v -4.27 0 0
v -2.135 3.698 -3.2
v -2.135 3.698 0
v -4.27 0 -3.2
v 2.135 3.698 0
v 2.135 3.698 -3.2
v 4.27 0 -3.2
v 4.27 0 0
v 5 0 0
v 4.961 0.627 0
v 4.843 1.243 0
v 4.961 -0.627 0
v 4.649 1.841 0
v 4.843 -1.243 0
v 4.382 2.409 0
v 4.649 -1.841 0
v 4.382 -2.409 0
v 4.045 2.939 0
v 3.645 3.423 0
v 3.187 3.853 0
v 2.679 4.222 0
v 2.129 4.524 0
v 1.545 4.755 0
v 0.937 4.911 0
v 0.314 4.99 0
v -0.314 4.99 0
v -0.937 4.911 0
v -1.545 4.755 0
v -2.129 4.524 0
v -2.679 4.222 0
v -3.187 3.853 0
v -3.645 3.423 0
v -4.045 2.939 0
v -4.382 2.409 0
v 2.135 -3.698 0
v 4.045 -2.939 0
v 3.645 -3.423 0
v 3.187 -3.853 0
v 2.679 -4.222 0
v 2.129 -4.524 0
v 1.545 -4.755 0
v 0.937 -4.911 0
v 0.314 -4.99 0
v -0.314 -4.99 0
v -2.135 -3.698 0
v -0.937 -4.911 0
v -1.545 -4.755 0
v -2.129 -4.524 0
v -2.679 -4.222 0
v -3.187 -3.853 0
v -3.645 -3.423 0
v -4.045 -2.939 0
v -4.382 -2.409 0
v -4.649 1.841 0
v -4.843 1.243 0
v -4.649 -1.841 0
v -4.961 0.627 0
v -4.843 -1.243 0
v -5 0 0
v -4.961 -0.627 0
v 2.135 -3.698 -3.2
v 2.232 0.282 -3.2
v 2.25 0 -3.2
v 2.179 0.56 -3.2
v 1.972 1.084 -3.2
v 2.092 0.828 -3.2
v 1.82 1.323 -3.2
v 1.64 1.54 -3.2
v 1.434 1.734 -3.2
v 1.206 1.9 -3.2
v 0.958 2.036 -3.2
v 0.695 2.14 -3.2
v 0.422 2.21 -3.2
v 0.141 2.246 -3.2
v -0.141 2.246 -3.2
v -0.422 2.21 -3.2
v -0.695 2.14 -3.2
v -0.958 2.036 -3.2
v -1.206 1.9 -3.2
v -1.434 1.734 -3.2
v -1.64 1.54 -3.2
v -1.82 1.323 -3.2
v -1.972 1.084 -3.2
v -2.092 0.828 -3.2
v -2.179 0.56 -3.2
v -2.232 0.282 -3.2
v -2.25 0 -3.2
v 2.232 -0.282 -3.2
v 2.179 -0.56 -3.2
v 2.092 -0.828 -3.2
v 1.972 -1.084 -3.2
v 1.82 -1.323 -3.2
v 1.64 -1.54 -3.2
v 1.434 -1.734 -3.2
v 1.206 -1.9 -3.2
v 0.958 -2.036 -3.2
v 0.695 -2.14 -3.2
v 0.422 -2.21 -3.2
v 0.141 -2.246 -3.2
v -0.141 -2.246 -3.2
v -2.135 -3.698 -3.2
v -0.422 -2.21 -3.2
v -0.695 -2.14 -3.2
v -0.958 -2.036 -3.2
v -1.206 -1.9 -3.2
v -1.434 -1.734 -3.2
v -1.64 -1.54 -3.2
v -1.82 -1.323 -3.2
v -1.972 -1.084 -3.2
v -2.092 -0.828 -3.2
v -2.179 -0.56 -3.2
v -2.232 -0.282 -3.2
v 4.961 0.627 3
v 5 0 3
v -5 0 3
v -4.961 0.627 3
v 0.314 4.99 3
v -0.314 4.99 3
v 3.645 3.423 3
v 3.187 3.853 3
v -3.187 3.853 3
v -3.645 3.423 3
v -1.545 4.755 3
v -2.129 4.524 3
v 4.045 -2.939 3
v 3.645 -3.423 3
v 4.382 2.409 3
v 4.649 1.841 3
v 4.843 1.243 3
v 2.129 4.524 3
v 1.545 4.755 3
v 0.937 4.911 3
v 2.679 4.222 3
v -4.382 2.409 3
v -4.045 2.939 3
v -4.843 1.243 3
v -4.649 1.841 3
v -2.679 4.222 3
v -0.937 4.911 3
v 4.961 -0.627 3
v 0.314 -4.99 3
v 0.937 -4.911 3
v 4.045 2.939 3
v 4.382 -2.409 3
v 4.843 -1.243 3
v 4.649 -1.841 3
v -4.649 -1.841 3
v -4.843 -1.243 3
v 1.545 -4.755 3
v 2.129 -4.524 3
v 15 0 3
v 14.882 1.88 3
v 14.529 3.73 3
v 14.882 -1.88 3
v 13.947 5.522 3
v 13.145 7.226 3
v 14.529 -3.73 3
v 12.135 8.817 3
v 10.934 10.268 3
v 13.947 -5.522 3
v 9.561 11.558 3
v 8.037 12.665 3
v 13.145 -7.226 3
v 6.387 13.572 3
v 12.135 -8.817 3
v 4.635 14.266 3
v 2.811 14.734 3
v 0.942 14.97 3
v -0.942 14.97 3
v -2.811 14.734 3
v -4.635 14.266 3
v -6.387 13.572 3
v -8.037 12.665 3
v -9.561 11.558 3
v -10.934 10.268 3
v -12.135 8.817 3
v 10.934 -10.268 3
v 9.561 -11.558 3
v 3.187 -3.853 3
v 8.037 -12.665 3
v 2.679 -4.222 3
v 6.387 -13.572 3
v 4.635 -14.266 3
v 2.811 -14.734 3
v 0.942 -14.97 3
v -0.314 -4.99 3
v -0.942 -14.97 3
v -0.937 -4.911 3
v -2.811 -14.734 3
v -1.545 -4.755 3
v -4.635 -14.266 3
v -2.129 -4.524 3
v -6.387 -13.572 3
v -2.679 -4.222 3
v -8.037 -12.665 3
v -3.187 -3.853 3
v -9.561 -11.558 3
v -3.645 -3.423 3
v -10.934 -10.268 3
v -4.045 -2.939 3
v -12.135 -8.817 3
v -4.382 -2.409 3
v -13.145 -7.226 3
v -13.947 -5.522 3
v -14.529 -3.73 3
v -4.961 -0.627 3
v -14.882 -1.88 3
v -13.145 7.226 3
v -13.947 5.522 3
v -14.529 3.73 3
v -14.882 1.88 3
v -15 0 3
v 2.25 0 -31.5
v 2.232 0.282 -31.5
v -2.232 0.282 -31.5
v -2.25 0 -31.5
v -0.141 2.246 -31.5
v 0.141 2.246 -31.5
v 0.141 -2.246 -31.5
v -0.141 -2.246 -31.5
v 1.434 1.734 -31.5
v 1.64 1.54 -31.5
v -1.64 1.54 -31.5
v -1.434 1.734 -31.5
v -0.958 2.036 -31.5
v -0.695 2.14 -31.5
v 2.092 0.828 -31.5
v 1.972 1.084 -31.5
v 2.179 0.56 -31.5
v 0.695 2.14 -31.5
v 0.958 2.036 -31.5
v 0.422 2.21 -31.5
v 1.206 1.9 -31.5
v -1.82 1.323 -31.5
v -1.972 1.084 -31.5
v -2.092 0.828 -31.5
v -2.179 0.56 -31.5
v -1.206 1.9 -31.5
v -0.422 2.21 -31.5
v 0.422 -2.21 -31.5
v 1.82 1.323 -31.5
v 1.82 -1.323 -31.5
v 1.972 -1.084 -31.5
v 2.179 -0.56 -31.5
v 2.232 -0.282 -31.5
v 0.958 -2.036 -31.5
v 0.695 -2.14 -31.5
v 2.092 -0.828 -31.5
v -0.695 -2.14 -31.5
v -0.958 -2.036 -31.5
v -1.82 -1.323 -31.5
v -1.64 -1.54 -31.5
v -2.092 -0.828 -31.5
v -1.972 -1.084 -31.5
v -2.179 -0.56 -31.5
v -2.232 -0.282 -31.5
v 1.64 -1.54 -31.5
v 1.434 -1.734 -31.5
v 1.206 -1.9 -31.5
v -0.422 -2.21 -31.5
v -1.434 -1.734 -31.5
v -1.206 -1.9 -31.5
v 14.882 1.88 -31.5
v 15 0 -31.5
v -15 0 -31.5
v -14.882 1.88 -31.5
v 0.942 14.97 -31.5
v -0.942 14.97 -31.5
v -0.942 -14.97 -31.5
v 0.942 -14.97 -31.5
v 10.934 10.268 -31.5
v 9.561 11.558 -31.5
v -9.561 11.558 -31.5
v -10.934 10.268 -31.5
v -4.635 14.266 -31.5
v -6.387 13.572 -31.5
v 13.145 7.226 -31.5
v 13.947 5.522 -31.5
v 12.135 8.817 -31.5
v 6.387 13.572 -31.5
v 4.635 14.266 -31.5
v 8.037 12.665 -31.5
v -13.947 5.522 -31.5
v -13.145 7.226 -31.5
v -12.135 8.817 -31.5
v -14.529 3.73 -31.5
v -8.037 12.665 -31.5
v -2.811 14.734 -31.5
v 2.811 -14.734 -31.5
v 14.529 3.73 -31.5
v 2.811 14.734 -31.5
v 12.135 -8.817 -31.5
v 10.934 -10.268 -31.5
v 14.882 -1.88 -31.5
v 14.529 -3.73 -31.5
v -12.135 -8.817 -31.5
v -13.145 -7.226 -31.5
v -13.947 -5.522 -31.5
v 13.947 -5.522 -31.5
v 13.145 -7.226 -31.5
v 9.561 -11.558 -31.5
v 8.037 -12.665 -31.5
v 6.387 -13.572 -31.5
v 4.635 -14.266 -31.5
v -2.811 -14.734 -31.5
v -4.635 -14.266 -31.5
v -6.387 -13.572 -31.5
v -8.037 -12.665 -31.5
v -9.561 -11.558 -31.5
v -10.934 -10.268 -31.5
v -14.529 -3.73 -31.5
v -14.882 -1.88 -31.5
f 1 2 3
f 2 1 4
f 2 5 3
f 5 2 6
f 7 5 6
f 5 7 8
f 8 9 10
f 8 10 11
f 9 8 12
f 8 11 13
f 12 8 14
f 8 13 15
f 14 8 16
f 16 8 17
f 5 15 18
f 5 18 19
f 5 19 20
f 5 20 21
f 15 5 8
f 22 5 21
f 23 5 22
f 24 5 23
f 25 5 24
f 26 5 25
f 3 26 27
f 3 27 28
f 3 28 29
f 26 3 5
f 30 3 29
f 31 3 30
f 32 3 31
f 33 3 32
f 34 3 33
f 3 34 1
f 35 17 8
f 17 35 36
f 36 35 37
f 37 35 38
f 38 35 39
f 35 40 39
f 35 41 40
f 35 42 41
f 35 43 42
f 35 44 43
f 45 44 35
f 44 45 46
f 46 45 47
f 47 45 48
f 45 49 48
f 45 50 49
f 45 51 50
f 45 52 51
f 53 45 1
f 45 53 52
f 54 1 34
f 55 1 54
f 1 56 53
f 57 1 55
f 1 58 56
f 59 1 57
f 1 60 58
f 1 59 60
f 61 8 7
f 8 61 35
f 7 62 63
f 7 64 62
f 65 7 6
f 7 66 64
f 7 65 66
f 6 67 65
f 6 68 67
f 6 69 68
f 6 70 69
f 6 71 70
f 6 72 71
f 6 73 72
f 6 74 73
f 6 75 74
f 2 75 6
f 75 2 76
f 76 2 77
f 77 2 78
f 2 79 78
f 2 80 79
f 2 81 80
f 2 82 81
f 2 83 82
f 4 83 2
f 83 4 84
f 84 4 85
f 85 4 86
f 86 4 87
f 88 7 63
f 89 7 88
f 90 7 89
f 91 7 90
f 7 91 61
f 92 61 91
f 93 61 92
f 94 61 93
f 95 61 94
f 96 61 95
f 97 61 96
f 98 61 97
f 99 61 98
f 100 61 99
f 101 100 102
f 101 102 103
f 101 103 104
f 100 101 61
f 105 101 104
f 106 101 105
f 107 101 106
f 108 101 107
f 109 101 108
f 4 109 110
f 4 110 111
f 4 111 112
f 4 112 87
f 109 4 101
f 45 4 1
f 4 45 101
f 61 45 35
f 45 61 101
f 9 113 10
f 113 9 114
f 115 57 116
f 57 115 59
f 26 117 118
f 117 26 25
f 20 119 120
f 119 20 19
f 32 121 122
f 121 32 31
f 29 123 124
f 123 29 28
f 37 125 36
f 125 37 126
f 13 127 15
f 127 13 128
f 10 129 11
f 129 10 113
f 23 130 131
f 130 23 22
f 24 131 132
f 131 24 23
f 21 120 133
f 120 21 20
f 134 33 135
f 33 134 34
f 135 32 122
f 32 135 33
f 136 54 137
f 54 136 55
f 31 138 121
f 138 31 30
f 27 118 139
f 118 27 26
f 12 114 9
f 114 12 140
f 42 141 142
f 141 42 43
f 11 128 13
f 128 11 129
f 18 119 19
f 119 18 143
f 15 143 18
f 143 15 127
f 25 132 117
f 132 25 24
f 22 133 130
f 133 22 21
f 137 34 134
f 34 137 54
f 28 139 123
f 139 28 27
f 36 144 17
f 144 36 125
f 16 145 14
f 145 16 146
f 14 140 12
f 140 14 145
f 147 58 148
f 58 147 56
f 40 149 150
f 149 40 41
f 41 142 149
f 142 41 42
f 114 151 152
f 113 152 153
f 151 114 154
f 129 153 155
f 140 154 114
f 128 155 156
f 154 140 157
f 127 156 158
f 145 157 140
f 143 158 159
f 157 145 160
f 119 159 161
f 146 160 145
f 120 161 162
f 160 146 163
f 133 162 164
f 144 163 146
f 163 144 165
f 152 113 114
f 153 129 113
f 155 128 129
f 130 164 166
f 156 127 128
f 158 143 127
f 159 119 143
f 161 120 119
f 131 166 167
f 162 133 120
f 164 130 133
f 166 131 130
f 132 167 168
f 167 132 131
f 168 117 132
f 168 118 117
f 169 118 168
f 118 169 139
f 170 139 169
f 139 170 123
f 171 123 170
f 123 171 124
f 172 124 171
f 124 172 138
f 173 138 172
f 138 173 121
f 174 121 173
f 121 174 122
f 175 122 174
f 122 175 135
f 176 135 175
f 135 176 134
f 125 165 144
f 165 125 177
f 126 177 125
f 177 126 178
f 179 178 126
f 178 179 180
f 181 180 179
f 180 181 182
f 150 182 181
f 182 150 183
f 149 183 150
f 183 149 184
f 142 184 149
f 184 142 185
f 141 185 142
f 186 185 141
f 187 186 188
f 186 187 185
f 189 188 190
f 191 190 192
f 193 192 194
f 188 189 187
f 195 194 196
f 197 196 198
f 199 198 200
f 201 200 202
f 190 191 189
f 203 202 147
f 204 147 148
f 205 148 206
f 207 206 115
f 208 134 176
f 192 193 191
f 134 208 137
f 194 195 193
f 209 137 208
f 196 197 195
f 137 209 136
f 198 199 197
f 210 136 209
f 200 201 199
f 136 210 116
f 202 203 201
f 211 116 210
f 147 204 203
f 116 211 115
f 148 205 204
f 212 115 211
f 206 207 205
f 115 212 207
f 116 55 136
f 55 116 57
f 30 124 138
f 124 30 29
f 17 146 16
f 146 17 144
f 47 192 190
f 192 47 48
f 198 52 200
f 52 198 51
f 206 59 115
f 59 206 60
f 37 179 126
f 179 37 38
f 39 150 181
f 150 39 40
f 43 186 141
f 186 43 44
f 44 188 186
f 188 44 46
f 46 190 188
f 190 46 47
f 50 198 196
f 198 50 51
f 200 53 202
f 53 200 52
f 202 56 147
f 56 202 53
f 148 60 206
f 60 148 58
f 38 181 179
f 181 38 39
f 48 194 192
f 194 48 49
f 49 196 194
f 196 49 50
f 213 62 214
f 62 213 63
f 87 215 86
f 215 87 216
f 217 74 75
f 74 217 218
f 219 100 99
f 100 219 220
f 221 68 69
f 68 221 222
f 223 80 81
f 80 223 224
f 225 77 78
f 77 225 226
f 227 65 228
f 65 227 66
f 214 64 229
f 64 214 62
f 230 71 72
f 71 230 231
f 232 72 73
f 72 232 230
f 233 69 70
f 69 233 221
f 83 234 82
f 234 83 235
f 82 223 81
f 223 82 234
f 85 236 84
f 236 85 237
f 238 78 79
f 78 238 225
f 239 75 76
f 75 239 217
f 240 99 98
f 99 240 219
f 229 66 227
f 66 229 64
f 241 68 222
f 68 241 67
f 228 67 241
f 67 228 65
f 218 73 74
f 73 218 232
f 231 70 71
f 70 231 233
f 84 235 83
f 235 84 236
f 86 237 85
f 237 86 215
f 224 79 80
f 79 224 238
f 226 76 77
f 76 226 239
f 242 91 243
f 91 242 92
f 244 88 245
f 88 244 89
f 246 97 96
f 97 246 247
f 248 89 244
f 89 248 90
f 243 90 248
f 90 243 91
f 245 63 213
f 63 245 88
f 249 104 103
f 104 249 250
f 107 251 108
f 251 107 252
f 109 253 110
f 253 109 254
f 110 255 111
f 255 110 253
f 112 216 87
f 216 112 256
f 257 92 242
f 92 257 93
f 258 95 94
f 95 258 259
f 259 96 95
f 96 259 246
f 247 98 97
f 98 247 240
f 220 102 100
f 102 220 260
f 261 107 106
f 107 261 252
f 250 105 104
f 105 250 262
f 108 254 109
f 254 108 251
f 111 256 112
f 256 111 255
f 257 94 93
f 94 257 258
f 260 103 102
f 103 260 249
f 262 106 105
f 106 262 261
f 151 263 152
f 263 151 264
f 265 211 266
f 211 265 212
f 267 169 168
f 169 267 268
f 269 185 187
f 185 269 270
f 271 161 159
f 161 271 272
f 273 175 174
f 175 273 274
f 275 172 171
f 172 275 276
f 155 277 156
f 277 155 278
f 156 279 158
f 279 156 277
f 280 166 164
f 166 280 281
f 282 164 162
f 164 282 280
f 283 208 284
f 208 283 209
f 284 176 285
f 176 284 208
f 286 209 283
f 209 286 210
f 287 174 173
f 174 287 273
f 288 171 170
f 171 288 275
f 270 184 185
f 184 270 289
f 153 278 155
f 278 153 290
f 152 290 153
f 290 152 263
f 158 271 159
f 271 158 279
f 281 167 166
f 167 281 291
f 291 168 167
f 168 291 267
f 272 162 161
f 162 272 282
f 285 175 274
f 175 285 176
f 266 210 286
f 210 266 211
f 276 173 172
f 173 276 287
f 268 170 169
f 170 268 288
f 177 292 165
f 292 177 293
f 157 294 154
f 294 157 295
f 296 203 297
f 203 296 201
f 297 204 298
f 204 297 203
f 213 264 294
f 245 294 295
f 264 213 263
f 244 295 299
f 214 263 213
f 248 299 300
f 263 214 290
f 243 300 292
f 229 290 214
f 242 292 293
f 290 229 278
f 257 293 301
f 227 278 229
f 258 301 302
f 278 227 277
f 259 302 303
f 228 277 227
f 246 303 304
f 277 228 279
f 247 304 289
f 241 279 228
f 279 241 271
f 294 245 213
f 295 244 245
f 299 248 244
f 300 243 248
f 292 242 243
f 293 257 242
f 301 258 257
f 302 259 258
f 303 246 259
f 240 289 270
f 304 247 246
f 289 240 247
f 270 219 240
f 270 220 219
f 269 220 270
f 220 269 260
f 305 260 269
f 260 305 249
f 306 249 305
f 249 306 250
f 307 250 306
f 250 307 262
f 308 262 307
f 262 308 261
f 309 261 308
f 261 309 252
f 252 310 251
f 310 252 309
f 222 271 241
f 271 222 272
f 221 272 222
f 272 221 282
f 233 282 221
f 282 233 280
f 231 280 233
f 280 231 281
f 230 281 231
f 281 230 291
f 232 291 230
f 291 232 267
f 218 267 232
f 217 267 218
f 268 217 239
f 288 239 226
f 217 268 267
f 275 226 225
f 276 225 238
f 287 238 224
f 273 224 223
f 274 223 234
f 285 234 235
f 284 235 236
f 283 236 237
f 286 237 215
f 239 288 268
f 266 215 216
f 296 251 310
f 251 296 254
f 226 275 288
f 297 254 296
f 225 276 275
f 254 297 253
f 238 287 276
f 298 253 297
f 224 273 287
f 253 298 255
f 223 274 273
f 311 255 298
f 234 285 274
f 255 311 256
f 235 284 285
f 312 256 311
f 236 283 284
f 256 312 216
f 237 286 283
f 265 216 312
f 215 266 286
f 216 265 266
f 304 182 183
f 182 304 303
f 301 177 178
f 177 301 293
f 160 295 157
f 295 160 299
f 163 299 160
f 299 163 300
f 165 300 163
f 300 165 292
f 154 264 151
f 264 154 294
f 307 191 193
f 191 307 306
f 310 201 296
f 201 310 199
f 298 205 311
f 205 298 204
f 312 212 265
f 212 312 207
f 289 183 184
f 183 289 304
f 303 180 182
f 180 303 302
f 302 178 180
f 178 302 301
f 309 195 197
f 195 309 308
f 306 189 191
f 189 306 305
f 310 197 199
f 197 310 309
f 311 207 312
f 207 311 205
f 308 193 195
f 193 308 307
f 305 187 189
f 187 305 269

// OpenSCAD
$fn = 50;

difference() {
	union() {
		translate(v = [0, 0, -31.5]) {
			cylinder(h = 34.5, r = 15.0);
		}
	}
	union() {
		translate(v = [0, 0, 0]) {
			rotate(a = [0, 0, 0]) {
				difference() {
					union() {
						translate(v = [0, 0, -3.2]) {
							linear_extrude(height = 3.2) {
								polygon(points = [[4.2698, 0.0], [2.1349000000000005, 3.697755269078796], [-2.134899999999999, 3.6977552690787965], [-4.2698, 5.228996902999369e-16], [-2.134900000000002, -3.6977552690787956], [2.1348999999999974, -3.697755269078798]]);
							}
						}
					}
					union();
				}
			}
		}
		#cylinder(h = 3, r = 5.0);
		#translate(v = [0, 0, -100.0]) {
			cylinder(h = 200, r = 2.25);
		}
	}
}
